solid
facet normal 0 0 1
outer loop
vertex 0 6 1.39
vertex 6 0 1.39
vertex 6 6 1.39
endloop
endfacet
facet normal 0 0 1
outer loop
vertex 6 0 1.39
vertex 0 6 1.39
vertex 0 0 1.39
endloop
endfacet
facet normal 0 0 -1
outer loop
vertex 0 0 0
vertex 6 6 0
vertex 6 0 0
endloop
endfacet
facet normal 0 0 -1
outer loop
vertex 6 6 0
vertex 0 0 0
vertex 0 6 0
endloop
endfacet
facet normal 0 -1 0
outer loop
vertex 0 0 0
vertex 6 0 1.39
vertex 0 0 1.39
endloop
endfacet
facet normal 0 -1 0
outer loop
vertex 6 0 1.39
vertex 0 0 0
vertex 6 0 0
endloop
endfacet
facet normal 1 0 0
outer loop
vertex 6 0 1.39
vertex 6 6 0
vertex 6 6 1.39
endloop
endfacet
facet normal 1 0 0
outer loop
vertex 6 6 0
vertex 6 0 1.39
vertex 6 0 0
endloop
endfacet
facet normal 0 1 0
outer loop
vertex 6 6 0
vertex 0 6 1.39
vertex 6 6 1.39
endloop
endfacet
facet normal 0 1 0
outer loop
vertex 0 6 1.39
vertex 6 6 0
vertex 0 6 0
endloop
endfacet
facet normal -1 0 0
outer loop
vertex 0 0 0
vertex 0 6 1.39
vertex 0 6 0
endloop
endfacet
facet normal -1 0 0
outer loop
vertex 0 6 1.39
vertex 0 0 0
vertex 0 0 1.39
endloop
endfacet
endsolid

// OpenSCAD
/* Warning, this is a very basic generator with a lot of approximation 
input data : [QFN, KVC, 6x6x1.39mm, 40, , A, C04-25672A]
generated by com.zoubworld.electronics.cad.model3d.Basic
Date : Sun Feb 15 10:50:49 CET 2026
*/

//body
color("black")
translate([0,0,0])
cube([6.0,6.0,1.39], center=false);
